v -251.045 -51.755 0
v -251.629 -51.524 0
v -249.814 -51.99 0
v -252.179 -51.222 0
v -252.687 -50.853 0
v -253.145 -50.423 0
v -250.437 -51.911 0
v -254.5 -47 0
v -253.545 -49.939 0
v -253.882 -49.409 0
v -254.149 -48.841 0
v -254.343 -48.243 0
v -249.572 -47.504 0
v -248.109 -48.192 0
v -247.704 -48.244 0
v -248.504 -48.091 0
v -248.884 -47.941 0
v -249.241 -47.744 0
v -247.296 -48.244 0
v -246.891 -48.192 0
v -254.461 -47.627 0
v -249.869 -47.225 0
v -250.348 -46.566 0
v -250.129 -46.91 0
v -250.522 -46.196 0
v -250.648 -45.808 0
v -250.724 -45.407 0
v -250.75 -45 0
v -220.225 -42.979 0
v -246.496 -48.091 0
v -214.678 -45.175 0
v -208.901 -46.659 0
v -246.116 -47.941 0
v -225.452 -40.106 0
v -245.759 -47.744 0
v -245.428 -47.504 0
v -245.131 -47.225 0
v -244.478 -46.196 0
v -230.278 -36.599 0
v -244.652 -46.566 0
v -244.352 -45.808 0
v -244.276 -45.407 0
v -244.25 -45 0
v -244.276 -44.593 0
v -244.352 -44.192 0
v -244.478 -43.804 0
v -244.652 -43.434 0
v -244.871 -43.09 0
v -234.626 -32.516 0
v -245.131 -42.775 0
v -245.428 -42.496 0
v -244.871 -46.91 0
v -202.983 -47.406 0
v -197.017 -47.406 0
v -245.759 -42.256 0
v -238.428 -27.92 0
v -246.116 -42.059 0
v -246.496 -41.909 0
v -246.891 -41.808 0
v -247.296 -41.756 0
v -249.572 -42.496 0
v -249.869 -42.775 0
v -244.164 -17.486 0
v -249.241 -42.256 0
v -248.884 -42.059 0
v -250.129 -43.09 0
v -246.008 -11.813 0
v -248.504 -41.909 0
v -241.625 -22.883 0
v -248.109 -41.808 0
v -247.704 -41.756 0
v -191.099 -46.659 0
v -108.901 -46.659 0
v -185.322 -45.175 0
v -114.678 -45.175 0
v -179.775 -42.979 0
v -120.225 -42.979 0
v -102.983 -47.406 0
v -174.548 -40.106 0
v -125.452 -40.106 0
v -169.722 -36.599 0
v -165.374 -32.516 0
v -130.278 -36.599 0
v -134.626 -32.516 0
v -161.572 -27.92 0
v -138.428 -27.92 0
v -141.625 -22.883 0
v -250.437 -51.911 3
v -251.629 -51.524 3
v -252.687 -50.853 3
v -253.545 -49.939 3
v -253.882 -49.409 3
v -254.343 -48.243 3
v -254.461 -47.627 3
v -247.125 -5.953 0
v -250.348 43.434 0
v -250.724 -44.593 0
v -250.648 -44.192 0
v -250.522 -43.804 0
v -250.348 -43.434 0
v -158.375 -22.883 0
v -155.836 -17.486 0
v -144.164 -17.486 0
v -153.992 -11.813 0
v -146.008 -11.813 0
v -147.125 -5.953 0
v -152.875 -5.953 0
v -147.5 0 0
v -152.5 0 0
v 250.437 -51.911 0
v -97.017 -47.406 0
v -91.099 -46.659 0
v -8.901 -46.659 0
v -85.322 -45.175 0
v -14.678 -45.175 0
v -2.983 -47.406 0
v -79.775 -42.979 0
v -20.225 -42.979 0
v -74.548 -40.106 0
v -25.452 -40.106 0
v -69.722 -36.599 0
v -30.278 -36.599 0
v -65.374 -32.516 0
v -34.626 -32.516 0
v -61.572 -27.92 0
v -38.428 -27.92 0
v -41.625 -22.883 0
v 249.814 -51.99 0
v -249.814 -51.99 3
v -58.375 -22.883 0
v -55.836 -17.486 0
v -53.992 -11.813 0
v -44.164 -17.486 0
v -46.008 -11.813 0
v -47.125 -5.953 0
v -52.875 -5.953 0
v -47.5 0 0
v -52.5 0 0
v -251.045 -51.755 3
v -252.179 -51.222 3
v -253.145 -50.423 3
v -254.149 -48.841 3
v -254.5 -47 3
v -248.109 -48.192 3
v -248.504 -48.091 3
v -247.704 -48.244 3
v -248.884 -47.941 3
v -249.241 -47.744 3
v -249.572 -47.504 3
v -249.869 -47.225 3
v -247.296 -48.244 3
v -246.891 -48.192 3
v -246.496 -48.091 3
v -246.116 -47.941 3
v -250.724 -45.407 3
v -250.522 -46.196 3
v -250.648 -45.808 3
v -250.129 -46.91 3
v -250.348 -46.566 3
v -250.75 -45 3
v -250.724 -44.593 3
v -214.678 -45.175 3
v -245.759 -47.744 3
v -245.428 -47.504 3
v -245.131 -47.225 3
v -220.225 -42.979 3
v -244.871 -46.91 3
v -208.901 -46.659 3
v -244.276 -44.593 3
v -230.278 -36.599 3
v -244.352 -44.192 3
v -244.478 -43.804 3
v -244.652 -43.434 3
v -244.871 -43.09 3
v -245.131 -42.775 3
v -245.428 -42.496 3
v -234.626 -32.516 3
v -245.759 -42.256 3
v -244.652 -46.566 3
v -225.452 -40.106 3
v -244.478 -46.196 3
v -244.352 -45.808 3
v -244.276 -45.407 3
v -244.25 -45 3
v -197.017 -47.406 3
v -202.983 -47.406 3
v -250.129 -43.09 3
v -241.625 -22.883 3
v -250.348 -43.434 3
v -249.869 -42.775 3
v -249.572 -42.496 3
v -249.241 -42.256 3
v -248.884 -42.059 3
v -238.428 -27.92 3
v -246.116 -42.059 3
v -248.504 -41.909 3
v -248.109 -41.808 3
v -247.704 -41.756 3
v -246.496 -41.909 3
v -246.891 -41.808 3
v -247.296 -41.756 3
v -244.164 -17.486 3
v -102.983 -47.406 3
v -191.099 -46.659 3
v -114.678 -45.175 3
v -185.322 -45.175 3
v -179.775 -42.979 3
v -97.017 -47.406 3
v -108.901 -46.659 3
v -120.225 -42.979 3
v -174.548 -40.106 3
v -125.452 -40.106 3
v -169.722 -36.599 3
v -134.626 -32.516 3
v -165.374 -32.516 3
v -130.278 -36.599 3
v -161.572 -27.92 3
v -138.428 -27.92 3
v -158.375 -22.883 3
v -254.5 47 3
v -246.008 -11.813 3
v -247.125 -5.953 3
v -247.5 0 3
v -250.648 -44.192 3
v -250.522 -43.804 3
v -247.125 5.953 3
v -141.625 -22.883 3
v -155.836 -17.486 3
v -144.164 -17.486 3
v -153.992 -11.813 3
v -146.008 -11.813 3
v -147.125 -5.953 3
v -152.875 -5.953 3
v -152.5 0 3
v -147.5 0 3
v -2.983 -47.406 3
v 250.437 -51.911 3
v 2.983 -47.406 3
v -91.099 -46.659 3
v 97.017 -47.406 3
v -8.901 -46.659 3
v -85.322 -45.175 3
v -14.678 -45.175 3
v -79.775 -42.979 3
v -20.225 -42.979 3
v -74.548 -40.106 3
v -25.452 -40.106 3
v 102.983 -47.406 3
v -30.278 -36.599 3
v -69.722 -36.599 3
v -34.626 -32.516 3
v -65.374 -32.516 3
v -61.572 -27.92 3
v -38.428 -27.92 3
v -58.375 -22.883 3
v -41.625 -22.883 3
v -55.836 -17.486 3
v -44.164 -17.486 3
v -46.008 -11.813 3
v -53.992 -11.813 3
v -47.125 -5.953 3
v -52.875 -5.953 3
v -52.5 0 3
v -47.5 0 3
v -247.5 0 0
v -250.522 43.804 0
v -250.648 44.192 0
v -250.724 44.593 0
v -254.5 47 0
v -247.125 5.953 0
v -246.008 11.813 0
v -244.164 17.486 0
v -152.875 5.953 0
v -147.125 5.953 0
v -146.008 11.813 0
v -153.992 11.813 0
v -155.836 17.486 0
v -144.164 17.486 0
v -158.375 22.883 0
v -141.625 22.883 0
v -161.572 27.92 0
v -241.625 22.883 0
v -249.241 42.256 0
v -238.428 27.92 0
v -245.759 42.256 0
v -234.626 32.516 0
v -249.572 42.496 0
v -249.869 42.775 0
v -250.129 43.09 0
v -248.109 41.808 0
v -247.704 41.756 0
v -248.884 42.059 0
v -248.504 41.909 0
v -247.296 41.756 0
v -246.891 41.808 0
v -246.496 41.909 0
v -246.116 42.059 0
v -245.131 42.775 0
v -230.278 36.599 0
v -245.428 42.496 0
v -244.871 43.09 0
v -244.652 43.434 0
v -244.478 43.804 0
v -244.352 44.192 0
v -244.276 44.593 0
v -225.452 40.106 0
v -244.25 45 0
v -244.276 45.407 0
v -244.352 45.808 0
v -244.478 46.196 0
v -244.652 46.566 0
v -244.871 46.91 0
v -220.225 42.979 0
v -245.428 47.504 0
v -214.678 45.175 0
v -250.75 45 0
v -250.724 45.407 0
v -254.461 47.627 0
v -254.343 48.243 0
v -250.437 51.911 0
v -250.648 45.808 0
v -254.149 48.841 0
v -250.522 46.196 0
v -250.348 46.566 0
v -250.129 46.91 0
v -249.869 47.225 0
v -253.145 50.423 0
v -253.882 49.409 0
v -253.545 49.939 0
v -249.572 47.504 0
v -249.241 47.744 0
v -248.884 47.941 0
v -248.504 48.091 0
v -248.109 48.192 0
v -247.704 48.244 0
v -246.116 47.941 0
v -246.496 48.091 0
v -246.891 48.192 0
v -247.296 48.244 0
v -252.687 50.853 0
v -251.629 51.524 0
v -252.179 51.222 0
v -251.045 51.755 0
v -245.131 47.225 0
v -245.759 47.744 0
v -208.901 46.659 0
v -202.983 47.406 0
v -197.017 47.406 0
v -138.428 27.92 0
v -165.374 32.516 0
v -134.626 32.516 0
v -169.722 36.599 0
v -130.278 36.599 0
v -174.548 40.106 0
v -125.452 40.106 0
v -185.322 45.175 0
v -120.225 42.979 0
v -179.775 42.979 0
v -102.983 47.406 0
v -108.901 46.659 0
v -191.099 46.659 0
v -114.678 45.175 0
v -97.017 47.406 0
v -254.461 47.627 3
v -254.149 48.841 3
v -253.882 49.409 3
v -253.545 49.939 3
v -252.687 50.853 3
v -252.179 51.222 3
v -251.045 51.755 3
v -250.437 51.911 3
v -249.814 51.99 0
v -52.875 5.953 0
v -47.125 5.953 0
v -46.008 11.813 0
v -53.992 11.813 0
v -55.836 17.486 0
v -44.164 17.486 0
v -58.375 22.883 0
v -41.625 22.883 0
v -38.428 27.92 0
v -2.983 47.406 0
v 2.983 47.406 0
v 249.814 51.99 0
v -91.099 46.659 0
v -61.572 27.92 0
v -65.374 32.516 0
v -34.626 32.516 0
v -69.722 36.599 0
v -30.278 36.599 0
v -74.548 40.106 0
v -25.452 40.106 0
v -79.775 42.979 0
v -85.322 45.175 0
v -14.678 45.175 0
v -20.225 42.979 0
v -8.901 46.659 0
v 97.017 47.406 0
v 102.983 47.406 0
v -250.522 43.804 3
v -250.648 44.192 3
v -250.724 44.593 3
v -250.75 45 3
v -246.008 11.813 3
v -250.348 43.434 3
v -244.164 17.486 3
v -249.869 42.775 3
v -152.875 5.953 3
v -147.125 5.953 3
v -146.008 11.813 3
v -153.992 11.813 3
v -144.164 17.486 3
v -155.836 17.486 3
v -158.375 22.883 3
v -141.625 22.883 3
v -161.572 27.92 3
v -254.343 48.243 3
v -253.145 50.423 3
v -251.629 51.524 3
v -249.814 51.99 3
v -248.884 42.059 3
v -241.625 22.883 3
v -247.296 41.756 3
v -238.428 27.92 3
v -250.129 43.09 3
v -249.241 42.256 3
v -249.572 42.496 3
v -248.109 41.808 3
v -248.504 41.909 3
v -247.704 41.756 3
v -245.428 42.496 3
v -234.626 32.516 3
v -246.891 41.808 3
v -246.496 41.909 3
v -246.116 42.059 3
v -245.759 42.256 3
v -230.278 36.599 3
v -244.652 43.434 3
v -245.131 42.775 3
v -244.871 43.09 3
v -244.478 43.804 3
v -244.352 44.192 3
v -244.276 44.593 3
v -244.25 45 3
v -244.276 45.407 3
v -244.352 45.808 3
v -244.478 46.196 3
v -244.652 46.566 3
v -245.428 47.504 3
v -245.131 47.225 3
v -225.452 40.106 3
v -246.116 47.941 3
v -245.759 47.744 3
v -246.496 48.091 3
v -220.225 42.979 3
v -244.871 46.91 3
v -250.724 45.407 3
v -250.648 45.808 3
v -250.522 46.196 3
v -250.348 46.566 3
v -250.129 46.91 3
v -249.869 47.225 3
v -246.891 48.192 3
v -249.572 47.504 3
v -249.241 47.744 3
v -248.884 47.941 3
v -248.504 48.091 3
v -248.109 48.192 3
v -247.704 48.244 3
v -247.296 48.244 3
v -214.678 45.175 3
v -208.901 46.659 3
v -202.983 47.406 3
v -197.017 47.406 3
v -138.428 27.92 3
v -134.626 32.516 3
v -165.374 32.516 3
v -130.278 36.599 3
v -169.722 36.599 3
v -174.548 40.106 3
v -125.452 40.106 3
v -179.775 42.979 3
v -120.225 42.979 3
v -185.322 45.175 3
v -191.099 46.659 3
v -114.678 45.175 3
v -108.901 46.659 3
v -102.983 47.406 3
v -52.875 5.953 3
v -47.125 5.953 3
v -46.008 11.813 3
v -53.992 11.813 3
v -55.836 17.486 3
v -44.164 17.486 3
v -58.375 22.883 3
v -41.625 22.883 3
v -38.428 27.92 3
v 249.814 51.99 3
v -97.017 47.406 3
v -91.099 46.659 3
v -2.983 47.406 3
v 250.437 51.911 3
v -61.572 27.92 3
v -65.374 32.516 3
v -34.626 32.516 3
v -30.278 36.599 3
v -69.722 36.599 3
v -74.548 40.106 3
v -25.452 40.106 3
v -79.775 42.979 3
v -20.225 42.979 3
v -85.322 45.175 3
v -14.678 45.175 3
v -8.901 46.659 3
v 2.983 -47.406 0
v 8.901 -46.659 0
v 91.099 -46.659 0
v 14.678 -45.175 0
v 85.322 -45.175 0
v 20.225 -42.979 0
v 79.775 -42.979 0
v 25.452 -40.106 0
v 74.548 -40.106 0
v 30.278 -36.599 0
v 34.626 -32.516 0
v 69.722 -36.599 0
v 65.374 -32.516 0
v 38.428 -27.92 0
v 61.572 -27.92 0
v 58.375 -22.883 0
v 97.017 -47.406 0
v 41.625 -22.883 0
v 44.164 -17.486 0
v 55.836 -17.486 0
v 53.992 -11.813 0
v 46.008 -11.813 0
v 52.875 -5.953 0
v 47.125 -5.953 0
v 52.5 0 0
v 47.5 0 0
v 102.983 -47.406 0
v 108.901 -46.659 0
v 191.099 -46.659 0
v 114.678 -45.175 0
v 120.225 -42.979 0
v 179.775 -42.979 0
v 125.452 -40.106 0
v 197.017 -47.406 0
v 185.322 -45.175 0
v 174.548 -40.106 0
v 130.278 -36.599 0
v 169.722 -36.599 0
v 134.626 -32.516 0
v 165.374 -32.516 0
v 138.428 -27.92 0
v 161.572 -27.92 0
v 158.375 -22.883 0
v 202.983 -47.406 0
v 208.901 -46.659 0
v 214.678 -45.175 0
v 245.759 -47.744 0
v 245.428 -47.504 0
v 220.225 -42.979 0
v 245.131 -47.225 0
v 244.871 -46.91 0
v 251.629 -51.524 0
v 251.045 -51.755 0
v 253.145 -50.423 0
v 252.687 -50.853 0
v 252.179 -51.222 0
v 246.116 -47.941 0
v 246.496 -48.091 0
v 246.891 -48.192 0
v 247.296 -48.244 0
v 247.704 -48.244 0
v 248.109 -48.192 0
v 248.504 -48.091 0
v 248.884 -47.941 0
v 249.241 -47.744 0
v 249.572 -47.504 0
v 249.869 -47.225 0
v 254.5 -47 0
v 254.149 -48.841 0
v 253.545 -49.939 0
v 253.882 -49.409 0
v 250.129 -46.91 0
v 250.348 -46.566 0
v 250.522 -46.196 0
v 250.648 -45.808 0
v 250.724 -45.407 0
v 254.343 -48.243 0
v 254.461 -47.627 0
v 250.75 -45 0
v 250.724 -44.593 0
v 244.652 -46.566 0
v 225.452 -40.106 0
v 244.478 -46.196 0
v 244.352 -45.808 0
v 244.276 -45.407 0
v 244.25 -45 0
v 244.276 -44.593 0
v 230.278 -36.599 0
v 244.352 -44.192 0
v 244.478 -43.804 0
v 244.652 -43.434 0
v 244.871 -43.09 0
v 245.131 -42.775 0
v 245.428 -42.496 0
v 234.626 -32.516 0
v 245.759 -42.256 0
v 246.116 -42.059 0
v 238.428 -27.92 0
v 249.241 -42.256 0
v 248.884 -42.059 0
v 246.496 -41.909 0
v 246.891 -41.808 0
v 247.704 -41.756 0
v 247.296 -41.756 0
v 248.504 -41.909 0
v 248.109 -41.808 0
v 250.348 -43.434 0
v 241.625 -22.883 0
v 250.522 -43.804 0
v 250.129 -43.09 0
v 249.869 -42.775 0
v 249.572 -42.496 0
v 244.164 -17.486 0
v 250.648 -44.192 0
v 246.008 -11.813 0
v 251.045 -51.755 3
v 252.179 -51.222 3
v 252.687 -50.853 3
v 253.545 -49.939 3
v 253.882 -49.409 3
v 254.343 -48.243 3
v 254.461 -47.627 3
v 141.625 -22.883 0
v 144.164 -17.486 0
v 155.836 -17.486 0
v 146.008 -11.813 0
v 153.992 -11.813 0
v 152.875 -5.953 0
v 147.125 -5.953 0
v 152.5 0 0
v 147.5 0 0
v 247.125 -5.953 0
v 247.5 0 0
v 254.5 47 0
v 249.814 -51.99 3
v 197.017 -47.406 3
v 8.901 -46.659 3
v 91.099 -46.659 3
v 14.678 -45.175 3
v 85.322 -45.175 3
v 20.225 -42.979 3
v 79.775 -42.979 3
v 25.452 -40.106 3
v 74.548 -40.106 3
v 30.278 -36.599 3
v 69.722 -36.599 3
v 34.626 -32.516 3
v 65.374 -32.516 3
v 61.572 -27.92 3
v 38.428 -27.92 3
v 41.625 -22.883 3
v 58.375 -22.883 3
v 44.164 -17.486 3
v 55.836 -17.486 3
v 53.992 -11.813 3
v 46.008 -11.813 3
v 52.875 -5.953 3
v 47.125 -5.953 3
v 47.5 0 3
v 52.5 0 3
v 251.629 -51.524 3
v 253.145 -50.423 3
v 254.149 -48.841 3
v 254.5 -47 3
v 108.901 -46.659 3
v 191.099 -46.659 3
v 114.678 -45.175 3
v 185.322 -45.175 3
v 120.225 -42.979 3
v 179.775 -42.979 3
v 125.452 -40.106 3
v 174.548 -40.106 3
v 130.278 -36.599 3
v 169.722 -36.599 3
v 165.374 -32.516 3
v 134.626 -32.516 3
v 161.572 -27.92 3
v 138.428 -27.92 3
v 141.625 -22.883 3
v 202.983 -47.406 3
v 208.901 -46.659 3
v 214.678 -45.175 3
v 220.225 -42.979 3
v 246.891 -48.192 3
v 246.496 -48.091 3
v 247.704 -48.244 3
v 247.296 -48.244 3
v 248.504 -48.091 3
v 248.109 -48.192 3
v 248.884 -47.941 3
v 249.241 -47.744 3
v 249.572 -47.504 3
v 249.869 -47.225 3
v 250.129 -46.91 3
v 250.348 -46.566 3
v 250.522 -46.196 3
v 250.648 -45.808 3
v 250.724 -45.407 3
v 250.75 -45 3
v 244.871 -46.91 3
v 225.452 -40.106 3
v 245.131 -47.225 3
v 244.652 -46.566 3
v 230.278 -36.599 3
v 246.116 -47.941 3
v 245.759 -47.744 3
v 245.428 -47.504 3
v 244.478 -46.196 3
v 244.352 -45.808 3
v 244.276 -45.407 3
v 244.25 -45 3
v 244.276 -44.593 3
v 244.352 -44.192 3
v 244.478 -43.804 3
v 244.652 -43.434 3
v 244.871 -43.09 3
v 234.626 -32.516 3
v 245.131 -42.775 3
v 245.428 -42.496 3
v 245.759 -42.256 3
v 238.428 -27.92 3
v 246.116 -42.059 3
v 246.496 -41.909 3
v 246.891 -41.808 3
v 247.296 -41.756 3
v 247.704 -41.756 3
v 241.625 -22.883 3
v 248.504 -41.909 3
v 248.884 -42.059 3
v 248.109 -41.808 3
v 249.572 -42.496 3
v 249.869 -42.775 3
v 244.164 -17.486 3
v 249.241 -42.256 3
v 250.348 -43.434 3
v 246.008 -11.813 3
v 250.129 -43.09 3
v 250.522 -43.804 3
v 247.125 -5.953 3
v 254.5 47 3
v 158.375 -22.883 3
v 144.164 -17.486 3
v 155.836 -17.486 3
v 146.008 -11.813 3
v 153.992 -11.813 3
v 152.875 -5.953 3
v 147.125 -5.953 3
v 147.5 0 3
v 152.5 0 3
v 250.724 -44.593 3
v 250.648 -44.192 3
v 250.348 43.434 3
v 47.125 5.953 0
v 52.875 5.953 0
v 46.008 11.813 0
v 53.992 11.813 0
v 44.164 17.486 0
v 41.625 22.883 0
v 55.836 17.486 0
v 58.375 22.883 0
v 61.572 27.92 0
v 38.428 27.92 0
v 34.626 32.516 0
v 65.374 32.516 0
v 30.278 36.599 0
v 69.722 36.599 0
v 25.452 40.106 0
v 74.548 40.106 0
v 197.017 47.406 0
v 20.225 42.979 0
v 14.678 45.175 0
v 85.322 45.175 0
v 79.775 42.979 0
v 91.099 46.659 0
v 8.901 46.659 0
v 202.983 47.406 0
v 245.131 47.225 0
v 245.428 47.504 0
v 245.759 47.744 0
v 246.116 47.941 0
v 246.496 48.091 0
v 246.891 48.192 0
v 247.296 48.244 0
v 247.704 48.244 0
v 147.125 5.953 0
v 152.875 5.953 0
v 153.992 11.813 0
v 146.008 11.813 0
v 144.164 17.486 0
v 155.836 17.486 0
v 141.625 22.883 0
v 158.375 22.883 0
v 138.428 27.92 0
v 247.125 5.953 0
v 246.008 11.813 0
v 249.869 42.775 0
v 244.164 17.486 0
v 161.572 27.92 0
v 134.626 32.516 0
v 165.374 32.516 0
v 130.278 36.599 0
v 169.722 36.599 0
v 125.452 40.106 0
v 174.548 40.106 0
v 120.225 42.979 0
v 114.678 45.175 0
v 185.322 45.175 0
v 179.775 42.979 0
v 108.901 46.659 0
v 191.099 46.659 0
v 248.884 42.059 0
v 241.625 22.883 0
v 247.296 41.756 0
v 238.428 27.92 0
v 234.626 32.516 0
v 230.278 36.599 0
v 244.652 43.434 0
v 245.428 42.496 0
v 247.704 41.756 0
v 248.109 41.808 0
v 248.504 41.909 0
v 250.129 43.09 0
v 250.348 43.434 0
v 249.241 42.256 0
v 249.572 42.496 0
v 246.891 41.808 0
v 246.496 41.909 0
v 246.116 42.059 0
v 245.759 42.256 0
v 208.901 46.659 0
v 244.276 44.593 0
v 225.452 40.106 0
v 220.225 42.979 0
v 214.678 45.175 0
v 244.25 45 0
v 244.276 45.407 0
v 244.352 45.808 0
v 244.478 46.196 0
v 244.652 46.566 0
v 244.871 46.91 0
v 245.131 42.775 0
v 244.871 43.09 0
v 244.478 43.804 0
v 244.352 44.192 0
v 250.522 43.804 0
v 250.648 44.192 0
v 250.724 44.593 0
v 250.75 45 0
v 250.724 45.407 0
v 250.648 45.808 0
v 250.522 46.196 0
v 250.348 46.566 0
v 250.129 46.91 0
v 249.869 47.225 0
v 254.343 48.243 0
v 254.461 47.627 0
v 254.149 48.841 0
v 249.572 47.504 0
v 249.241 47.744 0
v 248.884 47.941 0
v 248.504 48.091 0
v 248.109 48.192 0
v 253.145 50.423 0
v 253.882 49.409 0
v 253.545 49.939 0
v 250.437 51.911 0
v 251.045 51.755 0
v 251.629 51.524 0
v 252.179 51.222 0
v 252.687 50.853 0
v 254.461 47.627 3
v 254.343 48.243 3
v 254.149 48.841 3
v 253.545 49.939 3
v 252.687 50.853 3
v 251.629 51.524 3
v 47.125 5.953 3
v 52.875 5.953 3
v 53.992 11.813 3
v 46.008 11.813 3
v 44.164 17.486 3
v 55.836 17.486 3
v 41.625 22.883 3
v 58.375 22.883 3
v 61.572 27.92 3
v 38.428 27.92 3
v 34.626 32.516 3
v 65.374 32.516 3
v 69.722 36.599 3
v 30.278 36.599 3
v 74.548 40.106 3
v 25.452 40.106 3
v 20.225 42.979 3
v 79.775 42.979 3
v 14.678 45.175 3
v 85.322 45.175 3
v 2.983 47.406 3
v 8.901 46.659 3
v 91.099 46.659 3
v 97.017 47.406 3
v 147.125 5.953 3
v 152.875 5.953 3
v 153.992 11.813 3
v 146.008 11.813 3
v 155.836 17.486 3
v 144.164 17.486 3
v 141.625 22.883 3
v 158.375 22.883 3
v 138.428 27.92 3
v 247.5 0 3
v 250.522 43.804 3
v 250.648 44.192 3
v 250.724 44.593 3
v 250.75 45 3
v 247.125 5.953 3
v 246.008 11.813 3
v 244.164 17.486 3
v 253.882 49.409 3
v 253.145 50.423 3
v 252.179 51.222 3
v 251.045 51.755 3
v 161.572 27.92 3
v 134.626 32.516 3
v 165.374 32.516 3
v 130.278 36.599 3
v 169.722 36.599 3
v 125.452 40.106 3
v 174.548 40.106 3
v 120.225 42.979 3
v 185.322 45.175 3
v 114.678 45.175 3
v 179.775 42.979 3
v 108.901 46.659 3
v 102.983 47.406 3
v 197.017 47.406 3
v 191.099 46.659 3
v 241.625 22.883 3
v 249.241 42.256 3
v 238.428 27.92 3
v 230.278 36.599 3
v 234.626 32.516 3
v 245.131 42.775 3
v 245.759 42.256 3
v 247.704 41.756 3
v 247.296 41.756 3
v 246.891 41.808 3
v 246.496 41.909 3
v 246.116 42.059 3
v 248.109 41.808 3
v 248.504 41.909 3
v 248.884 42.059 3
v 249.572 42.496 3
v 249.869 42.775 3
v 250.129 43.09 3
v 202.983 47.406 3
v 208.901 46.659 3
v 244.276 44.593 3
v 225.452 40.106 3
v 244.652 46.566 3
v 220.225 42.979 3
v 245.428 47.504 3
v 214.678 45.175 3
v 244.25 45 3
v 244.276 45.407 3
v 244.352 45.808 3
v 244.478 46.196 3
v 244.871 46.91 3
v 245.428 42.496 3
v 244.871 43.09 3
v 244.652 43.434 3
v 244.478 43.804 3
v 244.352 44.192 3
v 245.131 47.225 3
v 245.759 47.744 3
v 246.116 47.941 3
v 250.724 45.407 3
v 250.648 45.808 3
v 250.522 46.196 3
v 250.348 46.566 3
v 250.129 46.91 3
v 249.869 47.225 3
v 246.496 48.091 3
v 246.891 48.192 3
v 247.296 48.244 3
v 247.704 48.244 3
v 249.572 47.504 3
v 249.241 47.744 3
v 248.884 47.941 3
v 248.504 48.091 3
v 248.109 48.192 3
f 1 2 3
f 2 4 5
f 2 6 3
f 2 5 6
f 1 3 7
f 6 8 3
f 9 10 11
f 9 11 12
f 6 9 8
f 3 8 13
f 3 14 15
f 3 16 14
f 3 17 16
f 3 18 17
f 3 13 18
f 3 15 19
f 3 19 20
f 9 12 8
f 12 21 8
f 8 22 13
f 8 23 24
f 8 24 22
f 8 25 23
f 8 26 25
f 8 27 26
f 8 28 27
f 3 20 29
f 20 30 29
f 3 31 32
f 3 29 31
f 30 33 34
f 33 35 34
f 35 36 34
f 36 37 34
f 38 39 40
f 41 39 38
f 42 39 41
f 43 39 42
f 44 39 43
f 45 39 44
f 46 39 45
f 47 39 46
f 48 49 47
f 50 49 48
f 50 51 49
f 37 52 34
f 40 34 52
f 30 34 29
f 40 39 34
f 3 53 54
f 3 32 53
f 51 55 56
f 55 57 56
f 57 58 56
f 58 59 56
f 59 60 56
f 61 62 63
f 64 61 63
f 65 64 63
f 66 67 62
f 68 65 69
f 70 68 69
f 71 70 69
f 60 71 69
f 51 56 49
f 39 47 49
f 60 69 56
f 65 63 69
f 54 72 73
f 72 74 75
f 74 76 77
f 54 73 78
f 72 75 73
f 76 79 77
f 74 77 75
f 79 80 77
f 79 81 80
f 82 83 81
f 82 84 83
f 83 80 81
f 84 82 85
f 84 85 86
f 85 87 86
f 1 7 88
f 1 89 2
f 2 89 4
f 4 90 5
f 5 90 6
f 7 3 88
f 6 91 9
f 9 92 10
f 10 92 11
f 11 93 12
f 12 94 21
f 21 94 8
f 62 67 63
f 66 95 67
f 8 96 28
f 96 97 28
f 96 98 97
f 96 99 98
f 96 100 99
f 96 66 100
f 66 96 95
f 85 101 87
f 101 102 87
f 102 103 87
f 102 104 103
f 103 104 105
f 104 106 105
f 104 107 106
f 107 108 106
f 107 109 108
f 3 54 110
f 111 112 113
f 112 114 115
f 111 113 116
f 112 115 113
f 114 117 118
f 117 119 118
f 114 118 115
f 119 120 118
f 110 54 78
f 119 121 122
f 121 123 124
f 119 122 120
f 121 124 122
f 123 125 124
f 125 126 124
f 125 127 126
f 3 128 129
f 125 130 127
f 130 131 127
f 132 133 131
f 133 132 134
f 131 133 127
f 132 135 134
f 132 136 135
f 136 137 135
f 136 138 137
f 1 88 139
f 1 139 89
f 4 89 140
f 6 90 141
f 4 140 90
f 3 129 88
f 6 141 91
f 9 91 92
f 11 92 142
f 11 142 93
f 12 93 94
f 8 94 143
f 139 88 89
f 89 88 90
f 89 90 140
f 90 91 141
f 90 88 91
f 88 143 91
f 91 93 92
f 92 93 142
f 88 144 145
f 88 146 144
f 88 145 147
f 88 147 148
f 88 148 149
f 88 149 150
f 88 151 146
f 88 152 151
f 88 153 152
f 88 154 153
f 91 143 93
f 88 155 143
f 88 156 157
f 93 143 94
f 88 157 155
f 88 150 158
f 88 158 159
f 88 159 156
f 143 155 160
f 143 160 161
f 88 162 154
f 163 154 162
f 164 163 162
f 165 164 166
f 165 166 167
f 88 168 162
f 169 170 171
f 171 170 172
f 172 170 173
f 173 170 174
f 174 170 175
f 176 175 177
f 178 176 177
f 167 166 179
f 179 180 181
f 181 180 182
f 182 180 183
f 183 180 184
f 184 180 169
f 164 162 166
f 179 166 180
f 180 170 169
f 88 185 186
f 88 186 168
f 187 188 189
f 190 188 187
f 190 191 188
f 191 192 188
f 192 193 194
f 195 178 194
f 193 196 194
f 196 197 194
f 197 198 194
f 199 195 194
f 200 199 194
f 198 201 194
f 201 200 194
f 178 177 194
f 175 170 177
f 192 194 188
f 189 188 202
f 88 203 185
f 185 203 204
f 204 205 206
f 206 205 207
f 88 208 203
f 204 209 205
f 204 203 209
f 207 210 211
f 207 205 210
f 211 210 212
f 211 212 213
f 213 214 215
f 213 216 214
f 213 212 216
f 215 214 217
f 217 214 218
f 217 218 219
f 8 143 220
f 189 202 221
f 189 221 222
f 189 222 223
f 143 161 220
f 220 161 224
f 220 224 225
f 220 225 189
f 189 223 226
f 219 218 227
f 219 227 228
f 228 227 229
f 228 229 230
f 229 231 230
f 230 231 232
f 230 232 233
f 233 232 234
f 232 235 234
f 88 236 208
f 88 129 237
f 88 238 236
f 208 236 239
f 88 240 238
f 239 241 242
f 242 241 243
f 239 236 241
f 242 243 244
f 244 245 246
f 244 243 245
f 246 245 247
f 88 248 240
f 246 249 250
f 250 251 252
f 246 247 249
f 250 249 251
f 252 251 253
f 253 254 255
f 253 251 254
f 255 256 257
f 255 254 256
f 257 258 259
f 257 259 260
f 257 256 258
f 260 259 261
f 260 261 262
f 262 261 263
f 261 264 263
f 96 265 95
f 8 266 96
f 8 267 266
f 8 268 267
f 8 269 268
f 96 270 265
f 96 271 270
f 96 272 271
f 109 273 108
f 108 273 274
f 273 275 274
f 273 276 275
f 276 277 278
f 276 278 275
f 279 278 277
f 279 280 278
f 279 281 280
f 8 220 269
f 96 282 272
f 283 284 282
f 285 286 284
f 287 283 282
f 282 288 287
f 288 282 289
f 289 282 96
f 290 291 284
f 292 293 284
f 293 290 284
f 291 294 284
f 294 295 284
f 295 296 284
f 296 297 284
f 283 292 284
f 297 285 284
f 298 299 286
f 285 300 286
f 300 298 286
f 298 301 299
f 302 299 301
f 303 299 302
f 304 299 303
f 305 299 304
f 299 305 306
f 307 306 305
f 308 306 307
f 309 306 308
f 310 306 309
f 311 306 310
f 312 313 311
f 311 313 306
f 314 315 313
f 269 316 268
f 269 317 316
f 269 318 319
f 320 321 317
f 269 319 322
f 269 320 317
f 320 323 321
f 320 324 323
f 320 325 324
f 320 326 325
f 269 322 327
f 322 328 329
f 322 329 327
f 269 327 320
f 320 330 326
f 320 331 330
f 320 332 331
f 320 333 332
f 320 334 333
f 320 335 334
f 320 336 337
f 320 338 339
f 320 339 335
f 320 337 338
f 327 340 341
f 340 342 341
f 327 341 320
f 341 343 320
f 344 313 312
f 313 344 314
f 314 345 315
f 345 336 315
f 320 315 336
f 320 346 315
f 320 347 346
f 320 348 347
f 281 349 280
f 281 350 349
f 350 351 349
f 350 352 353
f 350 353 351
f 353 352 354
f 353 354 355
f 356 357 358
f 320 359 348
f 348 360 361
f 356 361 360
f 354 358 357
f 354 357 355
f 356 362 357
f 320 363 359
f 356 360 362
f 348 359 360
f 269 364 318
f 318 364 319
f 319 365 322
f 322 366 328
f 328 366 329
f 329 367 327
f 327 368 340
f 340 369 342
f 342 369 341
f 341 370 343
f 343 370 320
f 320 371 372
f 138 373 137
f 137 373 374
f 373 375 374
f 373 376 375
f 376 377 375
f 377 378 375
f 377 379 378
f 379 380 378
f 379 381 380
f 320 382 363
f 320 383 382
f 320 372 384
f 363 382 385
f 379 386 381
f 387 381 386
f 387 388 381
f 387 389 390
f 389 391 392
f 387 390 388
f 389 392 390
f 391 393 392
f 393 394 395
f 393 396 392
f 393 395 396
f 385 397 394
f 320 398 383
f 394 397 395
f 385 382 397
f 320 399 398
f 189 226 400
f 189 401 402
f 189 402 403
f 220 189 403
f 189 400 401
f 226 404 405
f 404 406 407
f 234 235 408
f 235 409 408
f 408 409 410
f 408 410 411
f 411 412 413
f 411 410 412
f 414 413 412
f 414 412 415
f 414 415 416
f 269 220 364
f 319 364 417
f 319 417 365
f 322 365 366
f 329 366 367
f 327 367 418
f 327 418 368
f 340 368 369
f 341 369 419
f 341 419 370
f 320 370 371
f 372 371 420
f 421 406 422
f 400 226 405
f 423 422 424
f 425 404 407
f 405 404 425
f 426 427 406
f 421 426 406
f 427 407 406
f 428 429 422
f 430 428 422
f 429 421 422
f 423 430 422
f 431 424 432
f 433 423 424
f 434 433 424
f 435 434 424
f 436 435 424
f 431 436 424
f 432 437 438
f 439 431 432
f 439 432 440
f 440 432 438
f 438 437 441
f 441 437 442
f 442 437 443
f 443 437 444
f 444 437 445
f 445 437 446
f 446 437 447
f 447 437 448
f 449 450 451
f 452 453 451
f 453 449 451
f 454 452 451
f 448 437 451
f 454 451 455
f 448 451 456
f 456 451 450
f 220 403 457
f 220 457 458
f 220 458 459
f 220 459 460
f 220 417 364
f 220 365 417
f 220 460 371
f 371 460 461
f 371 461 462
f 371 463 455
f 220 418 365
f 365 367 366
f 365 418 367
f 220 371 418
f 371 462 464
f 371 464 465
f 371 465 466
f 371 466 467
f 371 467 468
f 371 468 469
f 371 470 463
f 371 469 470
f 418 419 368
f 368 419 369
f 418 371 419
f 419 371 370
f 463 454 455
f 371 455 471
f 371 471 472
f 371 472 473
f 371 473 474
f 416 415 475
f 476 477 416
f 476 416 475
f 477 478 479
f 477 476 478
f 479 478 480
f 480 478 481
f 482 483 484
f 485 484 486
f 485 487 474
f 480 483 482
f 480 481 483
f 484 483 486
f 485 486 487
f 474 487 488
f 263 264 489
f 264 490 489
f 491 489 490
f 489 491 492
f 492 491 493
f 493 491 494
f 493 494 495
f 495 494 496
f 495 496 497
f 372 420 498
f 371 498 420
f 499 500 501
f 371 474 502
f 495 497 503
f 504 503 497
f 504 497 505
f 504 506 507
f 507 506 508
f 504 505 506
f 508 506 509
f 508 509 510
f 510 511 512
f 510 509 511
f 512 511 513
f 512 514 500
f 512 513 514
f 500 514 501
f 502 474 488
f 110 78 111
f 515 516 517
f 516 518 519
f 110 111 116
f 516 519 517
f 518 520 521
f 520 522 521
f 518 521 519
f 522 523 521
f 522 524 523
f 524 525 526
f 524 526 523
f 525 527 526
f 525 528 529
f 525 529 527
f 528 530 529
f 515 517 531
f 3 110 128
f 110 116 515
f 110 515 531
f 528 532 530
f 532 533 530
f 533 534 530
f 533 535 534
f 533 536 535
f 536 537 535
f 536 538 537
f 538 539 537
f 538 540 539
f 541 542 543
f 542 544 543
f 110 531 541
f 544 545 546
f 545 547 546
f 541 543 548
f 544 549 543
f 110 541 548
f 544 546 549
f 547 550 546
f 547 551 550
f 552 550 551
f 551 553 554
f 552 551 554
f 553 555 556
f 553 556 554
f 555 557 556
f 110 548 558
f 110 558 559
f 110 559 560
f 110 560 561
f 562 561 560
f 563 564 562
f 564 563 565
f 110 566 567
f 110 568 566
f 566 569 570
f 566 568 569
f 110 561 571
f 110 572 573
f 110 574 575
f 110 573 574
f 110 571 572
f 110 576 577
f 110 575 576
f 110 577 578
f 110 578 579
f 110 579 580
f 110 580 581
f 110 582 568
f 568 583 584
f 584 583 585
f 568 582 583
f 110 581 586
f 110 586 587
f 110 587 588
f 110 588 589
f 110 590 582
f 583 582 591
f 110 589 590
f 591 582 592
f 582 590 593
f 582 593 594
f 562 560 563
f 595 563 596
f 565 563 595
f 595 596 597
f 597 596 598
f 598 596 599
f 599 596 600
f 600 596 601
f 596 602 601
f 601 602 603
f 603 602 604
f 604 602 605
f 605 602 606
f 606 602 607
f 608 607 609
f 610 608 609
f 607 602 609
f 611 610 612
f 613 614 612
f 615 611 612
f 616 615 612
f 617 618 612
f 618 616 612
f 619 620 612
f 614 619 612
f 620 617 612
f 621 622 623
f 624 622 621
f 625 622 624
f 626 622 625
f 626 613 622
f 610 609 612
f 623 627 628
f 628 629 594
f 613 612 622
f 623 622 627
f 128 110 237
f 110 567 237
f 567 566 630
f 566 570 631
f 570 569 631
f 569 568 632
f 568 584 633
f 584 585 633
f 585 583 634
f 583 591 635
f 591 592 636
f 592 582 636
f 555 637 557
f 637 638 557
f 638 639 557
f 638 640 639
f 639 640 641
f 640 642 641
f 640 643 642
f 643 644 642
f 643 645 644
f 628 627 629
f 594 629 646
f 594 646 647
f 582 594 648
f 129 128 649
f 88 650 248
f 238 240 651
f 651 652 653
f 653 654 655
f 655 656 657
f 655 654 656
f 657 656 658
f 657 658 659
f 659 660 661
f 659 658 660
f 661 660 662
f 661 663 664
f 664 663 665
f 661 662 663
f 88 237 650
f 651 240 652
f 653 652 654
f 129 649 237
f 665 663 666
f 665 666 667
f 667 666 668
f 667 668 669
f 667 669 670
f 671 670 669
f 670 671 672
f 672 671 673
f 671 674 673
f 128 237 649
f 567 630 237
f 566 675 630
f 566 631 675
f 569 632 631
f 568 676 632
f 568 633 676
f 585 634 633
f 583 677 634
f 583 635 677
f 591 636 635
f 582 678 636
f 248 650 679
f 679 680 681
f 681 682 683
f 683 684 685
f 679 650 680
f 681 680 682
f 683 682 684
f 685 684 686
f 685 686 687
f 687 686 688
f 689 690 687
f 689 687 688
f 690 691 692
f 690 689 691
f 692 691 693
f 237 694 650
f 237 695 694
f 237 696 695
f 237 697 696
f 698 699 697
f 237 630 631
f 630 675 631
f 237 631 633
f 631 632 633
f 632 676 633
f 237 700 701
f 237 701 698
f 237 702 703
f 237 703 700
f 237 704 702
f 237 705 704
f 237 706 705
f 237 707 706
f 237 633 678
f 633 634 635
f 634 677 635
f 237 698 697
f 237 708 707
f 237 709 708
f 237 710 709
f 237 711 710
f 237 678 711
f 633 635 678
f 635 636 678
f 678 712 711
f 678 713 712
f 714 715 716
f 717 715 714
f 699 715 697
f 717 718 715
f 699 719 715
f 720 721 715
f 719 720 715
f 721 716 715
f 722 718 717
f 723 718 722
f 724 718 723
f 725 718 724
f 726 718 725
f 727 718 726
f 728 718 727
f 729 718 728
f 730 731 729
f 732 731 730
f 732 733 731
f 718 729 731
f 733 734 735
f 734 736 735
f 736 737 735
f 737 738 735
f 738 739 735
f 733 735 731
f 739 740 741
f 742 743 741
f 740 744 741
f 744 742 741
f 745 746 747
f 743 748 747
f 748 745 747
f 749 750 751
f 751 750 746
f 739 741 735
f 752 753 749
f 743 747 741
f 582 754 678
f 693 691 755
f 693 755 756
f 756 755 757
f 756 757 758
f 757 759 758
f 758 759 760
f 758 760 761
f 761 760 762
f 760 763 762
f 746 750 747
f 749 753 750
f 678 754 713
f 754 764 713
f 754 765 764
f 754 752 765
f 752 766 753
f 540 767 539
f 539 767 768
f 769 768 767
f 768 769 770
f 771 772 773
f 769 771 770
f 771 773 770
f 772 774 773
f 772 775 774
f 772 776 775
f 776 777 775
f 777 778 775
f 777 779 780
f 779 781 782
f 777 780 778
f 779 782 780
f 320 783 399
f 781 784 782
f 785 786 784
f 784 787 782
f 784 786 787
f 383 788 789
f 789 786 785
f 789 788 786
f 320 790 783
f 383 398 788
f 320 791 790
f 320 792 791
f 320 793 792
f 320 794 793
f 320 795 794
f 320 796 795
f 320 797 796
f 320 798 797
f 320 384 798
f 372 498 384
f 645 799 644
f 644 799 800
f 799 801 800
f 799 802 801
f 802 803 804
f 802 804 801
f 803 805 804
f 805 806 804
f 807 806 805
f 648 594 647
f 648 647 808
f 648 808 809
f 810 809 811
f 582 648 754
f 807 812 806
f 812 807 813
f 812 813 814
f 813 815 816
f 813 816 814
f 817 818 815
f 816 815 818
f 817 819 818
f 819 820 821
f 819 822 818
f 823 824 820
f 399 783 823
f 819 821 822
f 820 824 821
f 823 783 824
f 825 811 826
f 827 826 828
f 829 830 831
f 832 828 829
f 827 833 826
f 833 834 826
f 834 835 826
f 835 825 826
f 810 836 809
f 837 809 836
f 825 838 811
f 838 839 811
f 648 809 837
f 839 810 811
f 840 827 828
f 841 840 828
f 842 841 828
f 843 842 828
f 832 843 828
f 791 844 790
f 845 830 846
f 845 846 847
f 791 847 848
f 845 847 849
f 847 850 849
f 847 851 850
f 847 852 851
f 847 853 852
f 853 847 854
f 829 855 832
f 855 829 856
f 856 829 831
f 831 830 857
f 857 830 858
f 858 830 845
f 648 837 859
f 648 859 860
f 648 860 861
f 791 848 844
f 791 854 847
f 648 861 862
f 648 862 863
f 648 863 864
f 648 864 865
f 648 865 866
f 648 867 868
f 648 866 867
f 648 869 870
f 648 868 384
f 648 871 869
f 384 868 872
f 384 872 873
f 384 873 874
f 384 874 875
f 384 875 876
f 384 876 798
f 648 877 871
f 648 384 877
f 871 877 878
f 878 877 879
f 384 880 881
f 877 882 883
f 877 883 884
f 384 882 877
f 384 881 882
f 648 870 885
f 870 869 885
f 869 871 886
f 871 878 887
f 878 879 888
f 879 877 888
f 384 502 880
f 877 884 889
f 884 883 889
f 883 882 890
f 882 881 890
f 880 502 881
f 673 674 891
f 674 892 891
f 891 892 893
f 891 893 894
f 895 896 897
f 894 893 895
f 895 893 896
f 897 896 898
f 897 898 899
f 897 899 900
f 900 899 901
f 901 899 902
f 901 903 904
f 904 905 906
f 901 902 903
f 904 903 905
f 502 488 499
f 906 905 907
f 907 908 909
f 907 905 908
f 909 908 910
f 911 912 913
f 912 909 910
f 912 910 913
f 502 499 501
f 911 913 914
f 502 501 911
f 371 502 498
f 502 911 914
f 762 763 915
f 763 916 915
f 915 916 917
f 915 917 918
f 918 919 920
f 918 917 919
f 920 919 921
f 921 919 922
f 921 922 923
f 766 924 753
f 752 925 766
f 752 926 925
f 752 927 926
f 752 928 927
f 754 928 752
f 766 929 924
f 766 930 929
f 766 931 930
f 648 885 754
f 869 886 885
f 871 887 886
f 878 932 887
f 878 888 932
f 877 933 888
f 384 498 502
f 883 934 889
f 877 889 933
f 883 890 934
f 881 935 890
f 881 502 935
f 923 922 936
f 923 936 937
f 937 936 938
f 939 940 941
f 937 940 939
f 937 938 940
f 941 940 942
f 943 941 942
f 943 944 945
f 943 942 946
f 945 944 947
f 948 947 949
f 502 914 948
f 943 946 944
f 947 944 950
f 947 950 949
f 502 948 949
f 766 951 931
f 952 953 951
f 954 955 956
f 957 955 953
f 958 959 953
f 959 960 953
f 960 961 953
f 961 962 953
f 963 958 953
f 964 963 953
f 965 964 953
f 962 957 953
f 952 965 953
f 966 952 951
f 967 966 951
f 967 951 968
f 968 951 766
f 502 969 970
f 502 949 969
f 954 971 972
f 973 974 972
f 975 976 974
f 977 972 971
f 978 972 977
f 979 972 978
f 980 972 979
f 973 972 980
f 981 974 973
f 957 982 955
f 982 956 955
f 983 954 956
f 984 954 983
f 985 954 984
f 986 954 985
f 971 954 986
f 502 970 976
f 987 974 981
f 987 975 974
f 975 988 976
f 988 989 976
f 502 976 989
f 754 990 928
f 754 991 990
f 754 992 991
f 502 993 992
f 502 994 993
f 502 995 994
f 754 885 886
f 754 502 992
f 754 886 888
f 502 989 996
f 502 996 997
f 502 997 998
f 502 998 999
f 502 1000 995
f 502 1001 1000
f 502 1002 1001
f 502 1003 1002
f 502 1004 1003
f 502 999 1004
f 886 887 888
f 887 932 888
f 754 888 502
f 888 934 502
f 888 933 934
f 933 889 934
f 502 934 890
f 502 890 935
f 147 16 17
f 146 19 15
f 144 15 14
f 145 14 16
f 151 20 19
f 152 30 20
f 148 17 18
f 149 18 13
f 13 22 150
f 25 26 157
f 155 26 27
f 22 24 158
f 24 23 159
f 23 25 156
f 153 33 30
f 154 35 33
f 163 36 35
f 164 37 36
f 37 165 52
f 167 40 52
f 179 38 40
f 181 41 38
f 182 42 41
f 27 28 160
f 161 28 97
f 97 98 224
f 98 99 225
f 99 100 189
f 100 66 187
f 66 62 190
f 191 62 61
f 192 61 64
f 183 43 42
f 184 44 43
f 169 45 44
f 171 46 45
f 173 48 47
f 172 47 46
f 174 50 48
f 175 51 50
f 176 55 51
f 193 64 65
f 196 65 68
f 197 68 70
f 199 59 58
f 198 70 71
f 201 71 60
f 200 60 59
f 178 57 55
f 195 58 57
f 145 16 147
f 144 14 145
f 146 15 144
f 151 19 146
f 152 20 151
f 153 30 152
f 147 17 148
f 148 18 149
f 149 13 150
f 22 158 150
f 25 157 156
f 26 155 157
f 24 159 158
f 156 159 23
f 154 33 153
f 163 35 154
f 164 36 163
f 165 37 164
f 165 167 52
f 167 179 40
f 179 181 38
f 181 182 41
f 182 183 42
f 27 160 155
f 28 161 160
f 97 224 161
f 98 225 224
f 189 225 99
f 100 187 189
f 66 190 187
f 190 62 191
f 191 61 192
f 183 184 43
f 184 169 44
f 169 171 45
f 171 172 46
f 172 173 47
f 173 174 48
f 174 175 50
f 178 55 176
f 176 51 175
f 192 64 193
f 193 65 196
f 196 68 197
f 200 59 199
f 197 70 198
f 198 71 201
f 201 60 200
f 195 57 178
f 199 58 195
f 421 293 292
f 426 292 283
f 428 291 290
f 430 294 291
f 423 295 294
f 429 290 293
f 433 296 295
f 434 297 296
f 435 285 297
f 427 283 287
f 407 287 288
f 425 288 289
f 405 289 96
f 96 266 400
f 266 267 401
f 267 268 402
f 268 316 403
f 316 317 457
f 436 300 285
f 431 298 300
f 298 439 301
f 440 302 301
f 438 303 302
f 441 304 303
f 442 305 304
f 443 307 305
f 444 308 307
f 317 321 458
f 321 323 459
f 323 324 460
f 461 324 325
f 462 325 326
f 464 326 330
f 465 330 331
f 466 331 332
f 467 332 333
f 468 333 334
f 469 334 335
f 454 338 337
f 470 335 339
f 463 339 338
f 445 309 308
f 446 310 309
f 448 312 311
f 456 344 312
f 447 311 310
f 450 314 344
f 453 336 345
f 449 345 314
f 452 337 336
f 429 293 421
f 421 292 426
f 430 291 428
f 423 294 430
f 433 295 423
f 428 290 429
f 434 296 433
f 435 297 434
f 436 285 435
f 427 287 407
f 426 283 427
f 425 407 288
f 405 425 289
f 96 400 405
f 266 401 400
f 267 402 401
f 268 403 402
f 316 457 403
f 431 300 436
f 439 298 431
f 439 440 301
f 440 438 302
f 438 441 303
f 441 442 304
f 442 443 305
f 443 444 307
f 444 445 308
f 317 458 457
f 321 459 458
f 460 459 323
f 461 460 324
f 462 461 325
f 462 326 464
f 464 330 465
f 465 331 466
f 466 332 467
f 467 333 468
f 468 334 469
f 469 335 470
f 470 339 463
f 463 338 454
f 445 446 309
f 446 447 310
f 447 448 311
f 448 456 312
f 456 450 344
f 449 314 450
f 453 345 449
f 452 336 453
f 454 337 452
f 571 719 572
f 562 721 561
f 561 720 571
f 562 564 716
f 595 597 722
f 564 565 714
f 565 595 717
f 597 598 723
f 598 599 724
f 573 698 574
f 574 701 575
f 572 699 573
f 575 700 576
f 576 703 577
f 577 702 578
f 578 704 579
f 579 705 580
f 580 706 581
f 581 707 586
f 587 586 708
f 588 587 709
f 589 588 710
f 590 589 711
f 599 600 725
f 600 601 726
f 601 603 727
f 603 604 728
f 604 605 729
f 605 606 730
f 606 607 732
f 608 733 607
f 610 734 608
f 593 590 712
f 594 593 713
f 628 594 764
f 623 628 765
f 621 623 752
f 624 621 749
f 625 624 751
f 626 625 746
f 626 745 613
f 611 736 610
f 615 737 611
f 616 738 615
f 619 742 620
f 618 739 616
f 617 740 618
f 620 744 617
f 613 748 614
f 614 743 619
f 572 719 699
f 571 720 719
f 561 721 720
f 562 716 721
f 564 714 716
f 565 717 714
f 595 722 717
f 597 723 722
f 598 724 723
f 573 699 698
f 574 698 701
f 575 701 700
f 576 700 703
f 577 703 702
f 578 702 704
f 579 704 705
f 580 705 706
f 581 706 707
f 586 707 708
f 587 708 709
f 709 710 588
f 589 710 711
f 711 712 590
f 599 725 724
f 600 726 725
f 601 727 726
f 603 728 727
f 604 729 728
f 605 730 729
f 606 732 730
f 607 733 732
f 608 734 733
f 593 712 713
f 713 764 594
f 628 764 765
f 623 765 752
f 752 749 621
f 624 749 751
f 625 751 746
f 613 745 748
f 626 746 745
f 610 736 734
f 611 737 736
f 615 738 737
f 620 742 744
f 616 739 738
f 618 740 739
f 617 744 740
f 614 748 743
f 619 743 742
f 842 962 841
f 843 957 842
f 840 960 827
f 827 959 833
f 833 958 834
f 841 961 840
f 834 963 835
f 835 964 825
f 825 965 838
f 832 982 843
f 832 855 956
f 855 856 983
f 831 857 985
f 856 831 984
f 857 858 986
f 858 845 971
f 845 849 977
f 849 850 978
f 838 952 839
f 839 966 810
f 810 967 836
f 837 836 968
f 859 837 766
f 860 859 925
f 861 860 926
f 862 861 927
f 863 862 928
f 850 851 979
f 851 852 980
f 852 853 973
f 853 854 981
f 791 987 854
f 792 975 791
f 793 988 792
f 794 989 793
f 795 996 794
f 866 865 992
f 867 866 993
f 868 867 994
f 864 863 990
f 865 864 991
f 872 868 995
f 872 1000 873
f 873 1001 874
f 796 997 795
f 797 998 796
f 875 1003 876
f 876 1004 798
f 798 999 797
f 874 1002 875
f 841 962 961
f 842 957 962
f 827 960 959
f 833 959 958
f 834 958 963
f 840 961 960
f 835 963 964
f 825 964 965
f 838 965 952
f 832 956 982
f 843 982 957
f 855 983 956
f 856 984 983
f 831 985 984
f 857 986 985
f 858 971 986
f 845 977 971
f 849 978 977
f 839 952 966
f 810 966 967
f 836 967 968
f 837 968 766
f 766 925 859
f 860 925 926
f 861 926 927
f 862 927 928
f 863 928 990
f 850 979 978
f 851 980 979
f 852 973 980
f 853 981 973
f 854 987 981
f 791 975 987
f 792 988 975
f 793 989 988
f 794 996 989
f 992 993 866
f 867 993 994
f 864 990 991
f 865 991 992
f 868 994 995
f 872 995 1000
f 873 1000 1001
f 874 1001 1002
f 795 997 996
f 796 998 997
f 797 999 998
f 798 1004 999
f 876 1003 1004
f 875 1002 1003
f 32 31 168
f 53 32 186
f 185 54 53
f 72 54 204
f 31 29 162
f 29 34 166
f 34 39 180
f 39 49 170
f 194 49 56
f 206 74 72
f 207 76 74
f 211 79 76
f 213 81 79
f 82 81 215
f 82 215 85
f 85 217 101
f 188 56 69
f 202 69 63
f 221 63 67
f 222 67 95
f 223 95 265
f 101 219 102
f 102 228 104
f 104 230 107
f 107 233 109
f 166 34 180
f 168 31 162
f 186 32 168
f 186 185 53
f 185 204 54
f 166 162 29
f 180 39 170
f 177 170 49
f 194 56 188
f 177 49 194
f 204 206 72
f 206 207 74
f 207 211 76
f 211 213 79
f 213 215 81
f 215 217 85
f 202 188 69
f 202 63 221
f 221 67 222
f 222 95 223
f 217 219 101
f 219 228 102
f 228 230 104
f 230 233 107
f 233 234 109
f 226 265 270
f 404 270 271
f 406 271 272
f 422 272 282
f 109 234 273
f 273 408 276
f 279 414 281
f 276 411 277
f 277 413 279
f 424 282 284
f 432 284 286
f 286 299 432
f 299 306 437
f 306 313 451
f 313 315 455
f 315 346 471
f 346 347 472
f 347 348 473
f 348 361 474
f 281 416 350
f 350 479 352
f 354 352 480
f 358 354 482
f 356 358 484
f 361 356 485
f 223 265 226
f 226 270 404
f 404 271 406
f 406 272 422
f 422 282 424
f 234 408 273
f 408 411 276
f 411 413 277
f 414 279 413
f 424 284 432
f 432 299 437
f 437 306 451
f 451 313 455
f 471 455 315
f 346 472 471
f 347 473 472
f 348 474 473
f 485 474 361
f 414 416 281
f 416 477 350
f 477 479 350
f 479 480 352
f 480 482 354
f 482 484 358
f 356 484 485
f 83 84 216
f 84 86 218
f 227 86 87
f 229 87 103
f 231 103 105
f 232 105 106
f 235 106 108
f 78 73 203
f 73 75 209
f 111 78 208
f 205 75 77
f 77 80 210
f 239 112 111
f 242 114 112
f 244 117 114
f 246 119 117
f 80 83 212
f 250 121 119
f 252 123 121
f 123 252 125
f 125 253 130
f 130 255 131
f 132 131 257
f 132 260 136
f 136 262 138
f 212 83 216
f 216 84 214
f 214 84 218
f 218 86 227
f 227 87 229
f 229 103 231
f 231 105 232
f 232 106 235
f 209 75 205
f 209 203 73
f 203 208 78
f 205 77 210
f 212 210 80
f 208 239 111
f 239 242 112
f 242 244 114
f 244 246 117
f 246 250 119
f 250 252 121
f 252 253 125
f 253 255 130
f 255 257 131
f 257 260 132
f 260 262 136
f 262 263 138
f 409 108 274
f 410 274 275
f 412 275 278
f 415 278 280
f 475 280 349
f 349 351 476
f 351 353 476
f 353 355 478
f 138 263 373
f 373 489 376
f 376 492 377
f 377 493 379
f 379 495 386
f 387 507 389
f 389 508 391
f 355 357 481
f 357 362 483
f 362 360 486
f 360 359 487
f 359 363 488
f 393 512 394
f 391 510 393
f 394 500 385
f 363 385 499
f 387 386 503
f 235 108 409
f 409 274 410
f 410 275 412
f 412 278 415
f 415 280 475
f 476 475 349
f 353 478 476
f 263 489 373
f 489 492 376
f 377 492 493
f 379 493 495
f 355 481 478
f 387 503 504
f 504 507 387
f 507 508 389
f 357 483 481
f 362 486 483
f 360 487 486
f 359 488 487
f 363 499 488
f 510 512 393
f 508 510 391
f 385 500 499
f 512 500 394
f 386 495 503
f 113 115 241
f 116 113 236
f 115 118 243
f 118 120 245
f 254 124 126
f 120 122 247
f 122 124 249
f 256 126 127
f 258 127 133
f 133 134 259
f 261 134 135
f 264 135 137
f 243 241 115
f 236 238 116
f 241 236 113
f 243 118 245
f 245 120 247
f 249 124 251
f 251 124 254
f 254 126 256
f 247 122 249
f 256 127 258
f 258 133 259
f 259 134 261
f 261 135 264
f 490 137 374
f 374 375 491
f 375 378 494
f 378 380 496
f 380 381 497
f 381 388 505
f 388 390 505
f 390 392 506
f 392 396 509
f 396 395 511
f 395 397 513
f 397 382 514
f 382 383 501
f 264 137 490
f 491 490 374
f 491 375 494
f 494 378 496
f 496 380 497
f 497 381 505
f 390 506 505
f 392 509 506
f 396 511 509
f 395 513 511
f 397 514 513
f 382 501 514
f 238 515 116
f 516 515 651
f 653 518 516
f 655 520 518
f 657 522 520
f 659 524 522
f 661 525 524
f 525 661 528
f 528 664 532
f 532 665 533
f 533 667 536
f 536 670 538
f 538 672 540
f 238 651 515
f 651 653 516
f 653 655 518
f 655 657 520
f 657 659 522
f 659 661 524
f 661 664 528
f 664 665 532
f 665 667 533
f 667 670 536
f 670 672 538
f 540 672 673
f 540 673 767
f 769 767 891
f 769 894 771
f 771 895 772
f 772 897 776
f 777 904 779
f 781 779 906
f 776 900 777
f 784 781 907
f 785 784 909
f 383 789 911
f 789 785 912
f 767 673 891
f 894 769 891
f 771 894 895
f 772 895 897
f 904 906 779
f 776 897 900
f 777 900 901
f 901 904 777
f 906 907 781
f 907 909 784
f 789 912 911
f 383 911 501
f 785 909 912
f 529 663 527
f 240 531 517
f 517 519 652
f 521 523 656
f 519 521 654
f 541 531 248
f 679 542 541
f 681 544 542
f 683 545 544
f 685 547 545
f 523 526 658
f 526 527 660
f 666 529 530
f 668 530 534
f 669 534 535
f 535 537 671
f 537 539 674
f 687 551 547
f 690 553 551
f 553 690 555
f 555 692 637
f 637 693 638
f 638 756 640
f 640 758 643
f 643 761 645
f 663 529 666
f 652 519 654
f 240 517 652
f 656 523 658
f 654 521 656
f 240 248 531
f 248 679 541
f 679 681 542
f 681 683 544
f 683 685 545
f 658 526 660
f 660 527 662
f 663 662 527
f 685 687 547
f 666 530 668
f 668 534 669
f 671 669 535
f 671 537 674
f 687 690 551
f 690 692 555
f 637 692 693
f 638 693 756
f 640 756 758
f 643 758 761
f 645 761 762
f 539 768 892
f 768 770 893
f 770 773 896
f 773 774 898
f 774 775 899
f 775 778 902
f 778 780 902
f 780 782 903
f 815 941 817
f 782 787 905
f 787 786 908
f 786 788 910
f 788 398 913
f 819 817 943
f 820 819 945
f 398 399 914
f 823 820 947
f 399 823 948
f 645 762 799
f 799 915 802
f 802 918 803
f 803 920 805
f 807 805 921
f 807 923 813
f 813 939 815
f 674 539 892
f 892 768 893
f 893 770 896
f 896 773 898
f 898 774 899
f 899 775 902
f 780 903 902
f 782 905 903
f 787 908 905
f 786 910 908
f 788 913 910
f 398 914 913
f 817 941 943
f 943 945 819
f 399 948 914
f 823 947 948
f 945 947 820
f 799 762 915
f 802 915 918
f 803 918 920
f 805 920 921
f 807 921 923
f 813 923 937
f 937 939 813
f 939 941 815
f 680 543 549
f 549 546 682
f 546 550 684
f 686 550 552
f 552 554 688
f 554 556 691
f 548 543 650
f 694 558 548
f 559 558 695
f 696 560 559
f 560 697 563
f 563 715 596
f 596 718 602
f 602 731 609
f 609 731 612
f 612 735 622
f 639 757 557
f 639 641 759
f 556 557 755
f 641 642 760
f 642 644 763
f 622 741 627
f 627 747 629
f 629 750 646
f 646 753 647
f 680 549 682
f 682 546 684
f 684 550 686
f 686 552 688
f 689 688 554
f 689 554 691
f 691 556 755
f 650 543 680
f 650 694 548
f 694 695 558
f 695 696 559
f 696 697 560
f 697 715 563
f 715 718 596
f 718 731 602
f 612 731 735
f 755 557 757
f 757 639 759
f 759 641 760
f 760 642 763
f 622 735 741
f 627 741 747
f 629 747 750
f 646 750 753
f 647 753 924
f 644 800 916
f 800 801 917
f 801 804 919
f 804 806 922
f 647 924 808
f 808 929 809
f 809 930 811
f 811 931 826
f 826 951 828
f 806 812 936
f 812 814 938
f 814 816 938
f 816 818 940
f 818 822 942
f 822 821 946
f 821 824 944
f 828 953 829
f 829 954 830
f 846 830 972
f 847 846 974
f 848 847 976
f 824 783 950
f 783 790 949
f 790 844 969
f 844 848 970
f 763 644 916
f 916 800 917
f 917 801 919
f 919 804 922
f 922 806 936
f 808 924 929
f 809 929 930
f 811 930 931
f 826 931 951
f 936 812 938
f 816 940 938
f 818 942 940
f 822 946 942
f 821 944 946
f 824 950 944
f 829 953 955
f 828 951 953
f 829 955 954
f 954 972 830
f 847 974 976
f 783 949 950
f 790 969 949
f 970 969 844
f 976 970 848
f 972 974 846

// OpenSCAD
$fn = 50;

difference() {
	union() {
		hull() {
			translate(v = [-249.5, 47.0, 0]) {
				cylinder(h = 3, r = 5);
			}
			translate(v = [249.5, 47.0, 0]) {
				cylinder(h = 3, r = 5);
			}
			translate(v = [-249.5, -47.0, 0]) {
				cylinder(h = 3, r = 5);
			}
			translate(v = [249.5, -47.0, 0]) {
				cylinder(h = 3, r = 5);
			}
		}
	}
	union() {
		translate(v = [-247.5, -45.0, -100.0]) {
			cylinder(h = 200, r = 3.25);
		}
		translate(v = [-247.5, 45.0, -100.0]) {
			cylinder(h = 200, r = 3.25);
		}
		translate(v = [247.5, -45.0, -100.0]) {
			cylinder(h = 200, r = 3.25);
		}
		translate(v = [247.5, 45.0, -100.0]) {
			cylinder(h = 200, r = 3.25);
		}
		translate(v = [-247.5, -45.0, -100.0]) {
			cylinder(h = 200, r = 1.8);
		}
		translate(v = [-247.5, 45.0, -100.0]) {
			cylinder(h = 200, r = 1.8);
		}
		translate(v = [247.5, -45.0, -100.0]) {
			cylinder(h = 200, r = 1.8);
		}
		translate(v = [247.5, 45.0, -100.0]) {
			cylinder(h = 200, r = 1.8);
		}
		translate(v = [-200.0, 0, 0.0]) {
			cylinder(h = 3, r = 47.5);
		}
		translate(v = [-100.0, 0, 0.0]) {
			cylinder(h = 3, r = 47.5);
		}
		cylinder(h = 3, r = 47.5);
		translate(v = [100.0, 0, 0.0]) {
			cylinder(h = 3, r = 47.5);
		}
		translate(v = [200.0, 0, 0.0]) {
			cylinder(h = 3, r = 47.5);
		}
	}
}
